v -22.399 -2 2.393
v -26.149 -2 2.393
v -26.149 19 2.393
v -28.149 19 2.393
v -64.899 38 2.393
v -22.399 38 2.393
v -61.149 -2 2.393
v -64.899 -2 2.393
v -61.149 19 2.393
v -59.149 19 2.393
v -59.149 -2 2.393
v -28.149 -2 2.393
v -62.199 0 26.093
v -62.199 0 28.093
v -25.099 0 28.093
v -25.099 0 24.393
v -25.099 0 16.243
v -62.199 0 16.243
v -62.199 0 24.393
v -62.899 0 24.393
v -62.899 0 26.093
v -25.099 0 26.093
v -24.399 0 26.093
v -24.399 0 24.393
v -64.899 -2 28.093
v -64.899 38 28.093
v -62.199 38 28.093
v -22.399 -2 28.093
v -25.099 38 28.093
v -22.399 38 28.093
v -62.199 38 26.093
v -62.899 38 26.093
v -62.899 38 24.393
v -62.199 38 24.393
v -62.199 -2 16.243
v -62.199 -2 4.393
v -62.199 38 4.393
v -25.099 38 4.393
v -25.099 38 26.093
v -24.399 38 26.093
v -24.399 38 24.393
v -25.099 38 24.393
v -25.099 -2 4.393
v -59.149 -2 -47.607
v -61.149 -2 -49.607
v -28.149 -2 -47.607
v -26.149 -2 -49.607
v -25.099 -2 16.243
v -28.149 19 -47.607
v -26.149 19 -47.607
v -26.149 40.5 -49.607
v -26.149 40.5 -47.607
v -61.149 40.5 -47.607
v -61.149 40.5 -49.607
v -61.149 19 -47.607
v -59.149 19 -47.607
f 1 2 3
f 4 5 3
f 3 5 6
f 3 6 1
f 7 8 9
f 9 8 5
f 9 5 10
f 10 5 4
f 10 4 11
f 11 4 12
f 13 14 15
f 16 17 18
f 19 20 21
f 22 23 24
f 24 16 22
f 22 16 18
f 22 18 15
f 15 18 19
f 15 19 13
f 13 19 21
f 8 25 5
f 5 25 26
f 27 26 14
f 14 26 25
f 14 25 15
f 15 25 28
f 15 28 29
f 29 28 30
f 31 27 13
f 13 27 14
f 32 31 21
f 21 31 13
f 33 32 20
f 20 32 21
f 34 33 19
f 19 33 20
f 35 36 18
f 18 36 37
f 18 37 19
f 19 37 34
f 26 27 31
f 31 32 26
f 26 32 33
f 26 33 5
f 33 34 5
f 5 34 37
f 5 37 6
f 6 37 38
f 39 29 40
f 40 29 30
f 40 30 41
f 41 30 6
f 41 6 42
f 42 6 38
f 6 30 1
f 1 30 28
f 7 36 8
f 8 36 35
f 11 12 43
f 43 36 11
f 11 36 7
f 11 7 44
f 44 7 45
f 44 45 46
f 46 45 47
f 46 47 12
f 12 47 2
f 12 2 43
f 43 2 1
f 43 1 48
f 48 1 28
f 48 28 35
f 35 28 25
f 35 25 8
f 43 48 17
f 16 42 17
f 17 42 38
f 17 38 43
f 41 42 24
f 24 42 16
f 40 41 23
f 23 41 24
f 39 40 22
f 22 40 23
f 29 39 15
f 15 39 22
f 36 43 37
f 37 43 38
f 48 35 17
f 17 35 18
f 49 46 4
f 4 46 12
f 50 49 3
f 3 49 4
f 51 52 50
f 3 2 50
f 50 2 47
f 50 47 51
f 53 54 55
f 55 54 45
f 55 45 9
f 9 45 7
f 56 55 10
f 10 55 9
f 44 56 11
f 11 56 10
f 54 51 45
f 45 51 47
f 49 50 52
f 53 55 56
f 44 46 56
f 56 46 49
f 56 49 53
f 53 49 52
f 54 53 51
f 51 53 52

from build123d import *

# Parameters (mm, degrees)
BOSS_EXTRUDE1_DEPTH   = 38
BOSS_EXTRUDE1_2_DEPTH = 38
SKETCH2_W             = 42.5
SKETCH2_H             = 5.7
BOSS_EXTRUDE2_DEPTH   = 2
BOSS_EXTRUDE3_DEPTH   = 18
SKETCH4_W             = 42.5
SKETCH4_H             = 40
BOSS_EXTRUDE4_DEPTH   = 2
SKETCH5_W             = 37.1
SKETCH5_H             = 11.85
CUT_EXTRUDE1_DEPTH    = 81.281509747
SKETCH6_W             = 2
SKETCH6_H             = 21
BOSS_EXTRUDE6_DEPTH   = 50
BOSS_EXTRUDE7_DEPTH   = 42.5


with BuildPart() as part:
    # Sketch1 → Boss-Extrude1 (new body)
    with BuildSketch(Plane(origin=(0, 0, 0), x_dir=(1, 0, 0), z_dir=(0, 1, 0))):
        Polygon((-62.898983402, -26.09346473), (-62.898983402, -24.39346473), (-62.198983402, -24.39346473), (-62.198983402, -22.39346473), (-64.898983402, -22.39346473), (-64.898983402, -28.09346473), (-62.198983402, -28.09346473), (-62.198983402, -26.09346473), align=None)
    extrude(amount=BOSS_EXTRUDE1_DEPTH)



with BuildPart() as body_2:
    # Sketch1 → Boss-Extrude1 2 (new body)
    with BuildSketch(Plane(origin=(0, 0, 0), x_dir=(1, 0, 0), z_dir=(0, 1, 0))):
        Polygon((-25.098983402, -22.39346473), (-25.098983402, -24.39346473), (-24.398983402, -24.39346473), (-24.398983402, -26.09346473), (-25.098983402, -26.09346473), (-25.098983402, -28.09346473), (-22.398983402, -28.09346473), (-22.398983402, -22.39346473), align=None)
    extrude(amount=BOSS_EXTRUDE1_2_DEPTH)


with BuildPart() as part_1:
    add(part.part)

    add(body_2.part)  # Boss-Extrude2 merges body 2
    # Sketch2 → Boss-Extrude2 (add)
    with BuildSketch(Plane(origin=(0, 0, 0), x_dir=(1, 0, 0), z_dir=(0, 1, 0))):
        with Locations((-43.648983402, -25.24346473)):
            Rectangle(SKETCH2_W, SKETCH2_H)
    extrude(amount=-BOSS_EXTRUDE2_DEPTH)

    # Sketch3 → Boss-Extrude3 (add)
    with BuildSketch(Plane(origin=(0, 0, 22.39346473), x_dir=(-1, 0, 0), z_dir=(0, 0, -1))):
        Polygon((64.898983402, 38), (62.198983402, 38), (62.198983402, 0), (25.098983402, 0), (25.098983402, 38), (22.398983402, 38), (22.398983402, -2), (64.898983402, -2), align=None)
    extrude(amount=BOSS_EXTRUDE3_DEPTH)

    # Sketch4 → Boss-Extrude4 (add)
    with BuildSketch(Plane(origin=(0, 0, 4.39346473), x_dir=(-1, 0, 0), z_dir=(0, 0, -1))):
        with Locations((43.648983402, 18)):
            Rectangle(SKETCH4_W, SKETCH4_H)
    extrude(amount=BOSS_EXTRUDE4_DEPTH)

    # Sketch5 → Cut-Extrude1 (cut, through all)
    with BuildSketch(Plane(origin=(0, 0, 0), x_dir=(1, 0, 0), z_dir=(0, 1, 0))):
        with Locations((-43.648983402, -10.31846473)):
            Rectangle(SKETCH5_W, SKETCH5_H)
    extrude(amount=-CUT_EXTRUDE1_DEPTH, mode=Mode.SUBTRACT)

    # Sketch6 → Boss-Extrude6 (add)
    with BuildSketch(Plane(origin=(0, 0, 2.39346473), x_dir=(-1, 0, 0), z_dir=(0, 0, -1))):
        with Locations((27.148983402, 8.5)):
            Rectangle(SKETCH6_W, SKETCH6_H)
        with Locations((60.148983402, 8.5)):
            Rectangle(SKETCH6_W, SKETCH6_H)
    extrude(amount=BOSS_EXTRUDE6_DEPTH)

    # Sketch7 → Boss-Extrude7 (add)
    with BuildSketch(Plane.XZ.offset(2)):
        Polygon((-59.148983402, -47.60653527), (-61.148983402, -47.60653527), (-61.148983402, -49.60653527), (-26.148983402, -49.60653527), (-26.148983402, -47.60653527), (-28.148983402, -47.60653527), align=None)
    extrude(amount=-BOSS_EXTRUDE7_DEPTH)


solid = part_1.part
